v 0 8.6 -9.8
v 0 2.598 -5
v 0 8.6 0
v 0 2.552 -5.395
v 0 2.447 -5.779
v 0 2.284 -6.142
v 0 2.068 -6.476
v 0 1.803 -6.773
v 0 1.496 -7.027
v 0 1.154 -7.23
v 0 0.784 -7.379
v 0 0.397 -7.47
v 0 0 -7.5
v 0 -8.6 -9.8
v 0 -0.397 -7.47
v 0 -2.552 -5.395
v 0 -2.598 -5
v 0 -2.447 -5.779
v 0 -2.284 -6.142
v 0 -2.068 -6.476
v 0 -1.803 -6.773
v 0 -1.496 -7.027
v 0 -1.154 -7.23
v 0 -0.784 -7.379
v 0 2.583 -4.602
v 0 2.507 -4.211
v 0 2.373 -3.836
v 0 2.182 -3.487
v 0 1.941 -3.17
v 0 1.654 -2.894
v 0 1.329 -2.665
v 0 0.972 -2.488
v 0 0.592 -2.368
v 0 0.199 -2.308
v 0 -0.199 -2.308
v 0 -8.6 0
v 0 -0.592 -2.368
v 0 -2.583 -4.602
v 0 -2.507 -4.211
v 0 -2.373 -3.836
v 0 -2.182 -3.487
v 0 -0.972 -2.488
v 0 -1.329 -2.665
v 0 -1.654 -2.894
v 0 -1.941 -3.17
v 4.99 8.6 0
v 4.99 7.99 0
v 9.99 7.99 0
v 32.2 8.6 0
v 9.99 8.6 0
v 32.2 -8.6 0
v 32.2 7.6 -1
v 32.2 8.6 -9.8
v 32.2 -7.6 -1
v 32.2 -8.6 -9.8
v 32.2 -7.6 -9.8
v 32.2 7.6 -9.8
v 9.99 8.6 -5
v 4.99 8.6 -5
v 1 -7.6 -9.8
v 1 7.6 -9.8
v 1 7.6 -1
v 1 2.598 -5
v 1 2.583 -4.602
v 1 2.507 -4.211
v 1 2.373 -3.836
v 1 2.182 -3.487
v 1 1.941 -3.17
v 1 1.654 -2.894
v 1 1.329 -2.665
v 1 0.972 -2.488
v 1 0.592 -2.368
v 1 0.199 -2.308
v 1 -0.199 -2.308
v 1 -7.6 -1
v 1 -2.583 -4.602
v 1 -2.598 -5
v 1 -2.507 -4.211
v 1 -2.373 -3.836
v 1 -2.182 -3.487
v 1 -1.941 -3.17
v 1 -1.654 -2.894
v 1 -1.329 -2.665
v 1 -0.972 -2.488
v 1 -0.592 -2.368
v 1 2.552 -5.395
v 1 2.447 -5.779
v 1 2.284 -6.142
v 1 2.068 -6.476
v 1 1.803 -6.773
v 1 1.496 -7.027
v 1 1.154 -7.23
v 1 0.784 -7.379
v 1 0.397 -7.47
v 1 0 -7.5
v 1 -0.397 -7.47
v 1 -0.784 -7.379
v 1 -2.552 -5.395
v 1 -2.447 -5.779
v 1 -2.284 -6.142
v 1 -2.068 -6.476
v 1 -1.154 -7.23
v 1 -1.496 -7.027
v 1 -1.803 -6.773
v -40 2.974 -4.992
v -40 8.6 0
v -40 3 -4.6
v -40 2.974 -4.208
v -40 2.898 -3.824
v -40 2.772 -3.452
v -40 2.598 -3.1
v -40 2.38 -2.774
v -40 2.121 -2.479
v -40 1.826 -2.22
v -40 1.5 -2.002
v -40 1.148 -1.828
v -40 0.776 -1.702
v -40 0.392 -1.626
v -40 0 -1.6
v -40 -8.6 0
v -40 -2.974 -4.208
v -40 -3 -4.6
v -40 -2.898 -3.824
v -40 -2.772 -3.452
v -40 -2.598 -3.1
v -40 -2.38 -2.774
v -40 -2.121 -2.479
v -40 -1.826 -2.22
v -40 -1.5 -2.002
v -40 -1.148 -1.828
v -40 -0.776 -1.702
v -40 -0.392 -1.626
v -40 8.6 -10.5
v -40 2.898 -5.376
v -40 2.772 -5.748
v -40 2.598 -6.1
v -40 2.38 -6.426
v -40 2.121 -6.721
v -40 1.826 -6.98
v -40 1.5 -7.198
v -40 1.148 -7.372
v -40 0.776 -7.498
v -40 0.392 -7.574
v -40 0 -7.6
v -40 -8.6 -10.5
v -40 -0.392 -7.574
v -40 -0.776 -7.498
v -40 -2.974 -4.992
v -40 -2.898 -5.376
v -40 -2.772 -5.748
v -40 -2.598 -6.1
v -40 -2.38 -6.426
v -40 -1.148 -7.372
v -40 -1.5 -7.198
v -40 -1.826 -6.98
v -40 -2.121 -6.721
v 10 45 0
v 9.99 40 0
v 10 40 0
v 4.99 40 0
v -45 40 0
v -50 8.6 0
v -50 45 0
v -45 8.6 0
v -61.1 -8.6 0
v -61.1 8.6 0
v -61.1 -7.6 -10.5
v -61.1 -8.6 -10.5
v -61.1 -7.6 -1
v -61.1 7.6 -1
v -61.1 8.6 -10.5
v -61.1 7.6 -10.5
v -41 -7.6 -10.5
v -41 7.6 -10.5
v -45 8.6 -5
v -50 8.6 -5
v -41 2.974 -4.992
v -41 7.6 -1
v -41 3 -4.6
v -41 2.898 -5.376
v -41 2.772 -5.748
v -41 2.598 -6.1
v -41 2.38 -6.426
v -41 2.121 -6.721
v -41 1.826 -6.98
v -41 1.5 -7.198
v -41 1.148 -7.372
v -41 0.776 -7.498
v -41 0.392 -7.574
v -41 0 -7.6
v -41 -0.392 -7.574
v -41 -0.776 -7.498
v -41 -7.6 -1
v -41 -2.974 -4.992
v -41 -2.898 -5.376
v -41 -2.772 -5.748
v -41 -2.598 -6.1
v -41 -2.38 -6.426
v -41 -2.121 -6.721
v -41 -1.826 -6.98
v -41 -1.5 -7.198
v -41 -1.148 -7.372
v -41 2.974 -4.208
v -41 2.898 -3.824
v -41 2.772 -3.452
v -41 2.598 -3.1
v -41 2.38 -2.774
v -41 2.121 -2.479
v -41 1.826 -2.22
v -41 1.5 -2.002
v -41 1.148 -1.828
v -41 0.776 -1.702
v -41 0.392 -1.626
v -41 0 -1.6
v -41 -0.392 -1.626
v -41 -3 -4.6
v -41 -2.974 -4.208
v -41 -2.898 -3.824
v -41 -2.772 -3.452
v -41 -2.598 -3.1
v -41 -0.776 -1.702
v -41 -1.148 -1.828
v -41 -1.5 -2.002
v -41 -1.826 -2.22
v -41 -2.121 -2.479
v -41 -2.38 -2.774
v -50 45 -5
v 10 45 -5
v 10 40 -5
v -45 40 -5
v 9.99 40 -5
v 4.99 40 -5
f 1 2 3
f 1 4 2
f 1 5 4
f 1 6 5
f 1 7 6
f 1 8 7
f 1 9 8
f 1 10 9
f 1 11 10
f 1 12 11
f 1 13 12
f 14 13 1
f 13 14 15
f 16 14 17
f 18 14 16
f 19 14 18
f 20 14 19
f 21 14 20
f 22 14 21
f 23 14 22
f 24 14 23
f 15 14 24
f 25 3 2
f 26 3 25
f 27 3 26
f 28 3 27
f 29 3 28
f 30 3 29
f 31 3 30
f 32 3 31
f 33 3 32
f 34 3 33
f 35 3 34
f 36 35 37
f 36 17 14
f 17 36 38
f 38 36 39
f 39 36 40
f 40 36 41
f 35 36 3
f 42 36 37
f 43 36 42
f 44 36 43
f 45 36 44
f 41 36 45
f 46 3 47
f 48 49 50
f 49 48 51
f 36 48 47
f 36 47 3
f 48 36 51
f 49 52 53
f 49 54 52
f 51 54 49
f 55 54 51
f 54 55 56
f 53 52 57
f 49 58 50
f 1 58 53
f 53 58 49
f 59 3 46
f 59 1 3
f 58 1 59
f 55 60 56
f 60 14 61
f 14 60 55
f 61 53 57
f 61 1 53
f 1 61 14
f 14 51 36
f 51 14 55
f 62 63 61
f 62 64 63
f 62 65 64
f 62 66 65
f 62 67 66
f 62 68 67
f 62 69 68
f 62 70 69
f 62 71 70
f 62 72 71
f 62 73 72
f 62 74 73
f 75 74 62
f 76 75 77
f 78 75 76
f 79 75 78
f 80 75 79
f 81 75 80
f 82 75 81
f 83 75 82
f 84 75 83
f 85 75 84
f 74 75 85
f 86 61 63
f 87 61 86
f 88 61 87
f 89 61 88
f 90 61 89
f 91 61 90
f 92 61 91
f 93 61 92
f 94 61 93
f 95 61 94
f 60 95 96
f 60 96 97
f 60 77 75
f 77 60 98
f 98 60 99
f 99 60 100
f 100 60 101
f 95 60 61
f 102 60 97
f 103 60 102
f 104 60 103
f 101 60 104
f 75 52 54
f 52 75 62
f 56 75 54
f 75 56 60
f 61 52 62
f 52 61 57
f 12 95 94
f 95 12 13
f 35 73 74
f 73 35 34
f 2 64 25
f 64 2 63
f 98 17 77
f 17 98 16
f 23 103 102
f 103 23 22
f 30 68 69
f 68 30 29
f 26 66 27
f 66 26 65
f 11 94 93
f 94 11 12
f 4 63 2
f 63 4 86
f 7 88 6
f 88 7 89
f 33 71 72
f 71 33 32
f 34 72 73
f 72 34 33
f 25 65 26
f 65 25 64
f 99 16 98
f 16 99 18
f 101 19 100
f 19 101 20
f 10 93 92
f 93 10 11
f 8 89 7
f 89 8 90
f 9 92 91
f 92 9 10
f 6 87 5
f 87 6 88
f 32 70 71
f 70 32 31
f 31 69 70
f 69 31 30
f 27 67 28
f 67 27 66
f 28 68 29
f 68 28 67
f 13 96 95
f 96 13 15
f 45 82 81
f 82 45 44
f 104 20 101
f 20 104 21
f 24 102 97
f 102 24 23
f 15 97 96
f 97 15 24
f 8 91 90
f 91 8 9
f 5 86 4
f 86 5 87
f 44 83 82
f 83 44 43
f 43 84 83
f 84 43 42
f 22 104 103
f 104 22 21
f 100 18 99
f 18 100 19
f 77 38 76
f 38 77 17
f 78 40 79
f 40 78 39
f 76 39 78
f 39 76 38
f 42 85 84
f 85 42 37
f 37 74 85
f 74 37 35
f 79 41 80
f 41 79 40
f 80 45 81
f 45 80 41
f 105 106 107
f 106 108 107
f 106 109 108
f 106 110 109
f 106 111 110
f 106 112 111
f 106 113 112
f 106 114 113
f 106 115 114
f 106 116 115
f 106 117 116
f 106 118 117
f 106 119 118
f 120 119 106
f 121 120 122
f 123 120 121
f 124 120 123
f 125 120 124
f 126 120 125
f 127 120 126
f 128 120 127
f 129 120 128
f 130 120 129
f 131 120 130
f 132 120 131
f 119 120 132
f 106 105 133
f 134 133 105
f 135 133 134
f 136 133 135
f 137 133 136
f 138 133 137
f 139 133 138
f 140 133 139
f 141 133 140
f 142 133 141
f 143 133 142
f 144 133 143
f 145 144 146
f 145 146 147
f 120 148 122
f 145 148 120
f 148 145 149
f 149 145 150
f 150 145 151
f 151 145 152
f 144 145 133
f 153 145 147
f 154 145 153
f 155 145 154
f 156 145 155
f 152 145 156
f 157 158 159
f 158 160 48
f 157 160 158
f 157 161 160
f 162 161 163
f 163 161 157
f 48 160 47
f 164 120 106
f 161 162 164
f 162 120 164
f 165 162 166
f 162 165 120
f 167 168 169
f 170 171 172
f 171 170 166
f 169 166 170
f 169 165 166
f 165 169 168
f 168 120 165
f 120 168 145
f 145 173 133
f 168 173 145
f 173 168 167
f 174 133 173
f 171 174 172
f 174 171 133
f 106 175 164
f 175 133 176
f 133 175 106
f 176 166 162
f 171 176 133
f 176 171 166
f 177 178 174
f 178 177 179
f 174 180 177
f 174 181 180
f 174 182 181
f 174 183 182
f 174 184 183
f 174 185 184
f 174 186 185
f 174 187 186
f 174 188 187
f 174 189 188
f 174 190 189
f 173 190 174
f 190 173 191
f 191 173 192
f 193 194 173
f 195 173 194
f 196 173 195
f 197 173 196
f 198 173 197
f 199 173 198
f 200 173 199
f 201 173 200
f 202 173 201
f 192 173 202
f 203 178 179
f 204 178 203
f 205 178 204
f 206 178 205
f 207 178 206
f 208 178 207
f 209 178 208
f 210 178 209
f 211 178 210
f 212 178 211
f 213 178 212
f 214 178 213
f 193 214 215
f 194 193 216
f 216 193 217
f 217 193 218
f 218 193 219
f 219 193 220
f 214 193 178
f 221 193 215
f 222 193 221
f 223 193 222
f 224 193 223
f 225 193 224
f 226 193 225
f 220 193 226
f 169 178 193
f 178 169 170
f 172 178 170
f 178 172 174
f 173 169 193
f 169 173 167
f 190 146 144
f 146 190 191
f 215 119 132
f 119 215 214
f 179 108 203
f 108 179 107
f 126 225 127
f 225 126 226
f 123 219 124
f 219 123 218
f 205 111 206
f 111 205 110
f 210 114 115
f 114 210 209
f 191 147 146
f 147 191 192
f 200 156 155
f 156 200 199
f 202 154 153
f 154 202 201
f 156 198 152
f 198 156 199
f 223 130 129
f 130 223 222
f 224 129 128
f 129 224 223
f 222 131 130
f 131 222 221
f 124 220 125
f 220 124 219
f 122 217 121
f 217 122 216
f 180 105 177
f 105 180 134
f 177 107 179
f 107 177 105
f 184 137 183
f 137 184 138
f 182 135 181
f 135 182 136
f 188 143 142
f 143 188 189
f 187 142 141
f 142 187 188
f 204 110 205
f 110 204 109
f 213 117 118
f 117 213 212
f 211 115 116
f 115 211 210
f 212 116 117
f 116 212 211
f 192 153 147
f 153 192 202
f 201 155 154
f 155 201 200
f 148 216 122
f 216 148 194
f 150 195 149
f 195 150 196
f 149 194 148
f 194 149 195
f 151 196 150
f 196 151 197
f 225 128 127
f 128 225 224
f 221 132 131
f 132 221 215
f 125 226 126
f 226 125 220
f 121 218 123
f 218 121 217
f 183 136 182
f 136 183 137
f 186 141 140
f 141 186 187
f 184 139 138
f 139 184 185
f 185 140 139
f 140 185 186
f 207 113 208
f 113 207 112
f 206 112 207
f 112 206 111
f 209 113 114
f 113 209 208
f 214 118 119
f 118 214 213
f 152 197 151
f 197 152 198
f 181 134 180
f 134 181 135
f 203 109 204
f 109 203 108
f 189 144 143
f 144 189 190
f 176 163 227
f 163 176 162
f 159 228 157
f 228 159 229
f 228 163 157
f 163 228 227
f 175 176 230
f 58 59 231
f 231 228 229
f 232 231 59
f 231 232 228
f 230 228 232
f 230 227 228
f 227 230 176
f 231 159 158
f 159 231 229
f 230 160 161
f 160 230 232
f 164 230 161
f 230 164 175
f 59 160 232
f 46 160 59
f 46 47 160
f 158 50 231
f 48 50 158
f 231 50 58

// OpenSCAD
$fa = 0.4;
$fs = 0.4;


union() {
	translate(v = [0, 0, -4.9]) {
		translate(v = [16.1, 0, 0]) {
			difference() {
				cube(center = true, size = [32.2,17.2, 9.8]);
				cube(center = true, size = [30.2,15.2, 7.8]);
				translate(v = [0, 0, -2]) {
					cube(center = true, size = [30.2, 15.2, 9.8]);
				}
				translate(v = [0, 0, -2]) {
					translate(v = [15.09, 0, 0]) {
						cube(center = true, size = [2.1000000000, 15.2, 11.8]);
					}
				}
				translate(v = [0, 0, -1.3000000000]) {
					translate(v = [0, 0, 1.2999999999999998]) {
						rotate(a = [0, 90, 0]) {
							cylinder(center = true, h = 100, r = 2.6000000000);
						}
					}
				}
			}
		}
	}
	translate(v = [-40, 0, 0]) {
		rotate(a = [0, 0, 180]) {
			translate(v = [0, 0, -5.25]) {
				translate(v = [10.55, 0, 0]) {
					difference() {
						cube(center = true, size = [21.1,17.2,10.5]);
						cube(center = true, size = [19.1,15.2, 8.5]);
						translate(v = [0, 0, -2]) {
							cube(center = true, size = [19.1, 15.2, 10.5]);
						}
						translate(v = [0, 0, -2]) {
							translate(v = [9.540000000000001, 0, 0]) {
								cube(center = true, size = [2.1000000000, 15.2, 12.5]);
							}
						}
						translate(v = [0, 0, -1]) {
							translate(v = [0, 0, 1.65]) {
								rotate(a = [0, 90, 0]) {
									cylinder(center = true, h = 100, r = 3.0000000000);
								}
							}
						}
					}
				}
			}
		}
	}
	translate(v = [0, 0, -5]) {
		translate(v = [0, 40, 0]) {
			translate(v = [-50, 0, 0]) {
				union() {
					cube(size = [60, 5, 5]);
					translate(v = [0, -32.0100000000, 0]) {
						cube(size = [5, 35, 5]);
					}
					translate(v = [54.9900000000, 0, 0]) {
						translate(v = [0, -32.0100000000, 0]) {
							cube(size = [5, 35, 5]);
						}
					}
				}
			}
		}
	}
}
